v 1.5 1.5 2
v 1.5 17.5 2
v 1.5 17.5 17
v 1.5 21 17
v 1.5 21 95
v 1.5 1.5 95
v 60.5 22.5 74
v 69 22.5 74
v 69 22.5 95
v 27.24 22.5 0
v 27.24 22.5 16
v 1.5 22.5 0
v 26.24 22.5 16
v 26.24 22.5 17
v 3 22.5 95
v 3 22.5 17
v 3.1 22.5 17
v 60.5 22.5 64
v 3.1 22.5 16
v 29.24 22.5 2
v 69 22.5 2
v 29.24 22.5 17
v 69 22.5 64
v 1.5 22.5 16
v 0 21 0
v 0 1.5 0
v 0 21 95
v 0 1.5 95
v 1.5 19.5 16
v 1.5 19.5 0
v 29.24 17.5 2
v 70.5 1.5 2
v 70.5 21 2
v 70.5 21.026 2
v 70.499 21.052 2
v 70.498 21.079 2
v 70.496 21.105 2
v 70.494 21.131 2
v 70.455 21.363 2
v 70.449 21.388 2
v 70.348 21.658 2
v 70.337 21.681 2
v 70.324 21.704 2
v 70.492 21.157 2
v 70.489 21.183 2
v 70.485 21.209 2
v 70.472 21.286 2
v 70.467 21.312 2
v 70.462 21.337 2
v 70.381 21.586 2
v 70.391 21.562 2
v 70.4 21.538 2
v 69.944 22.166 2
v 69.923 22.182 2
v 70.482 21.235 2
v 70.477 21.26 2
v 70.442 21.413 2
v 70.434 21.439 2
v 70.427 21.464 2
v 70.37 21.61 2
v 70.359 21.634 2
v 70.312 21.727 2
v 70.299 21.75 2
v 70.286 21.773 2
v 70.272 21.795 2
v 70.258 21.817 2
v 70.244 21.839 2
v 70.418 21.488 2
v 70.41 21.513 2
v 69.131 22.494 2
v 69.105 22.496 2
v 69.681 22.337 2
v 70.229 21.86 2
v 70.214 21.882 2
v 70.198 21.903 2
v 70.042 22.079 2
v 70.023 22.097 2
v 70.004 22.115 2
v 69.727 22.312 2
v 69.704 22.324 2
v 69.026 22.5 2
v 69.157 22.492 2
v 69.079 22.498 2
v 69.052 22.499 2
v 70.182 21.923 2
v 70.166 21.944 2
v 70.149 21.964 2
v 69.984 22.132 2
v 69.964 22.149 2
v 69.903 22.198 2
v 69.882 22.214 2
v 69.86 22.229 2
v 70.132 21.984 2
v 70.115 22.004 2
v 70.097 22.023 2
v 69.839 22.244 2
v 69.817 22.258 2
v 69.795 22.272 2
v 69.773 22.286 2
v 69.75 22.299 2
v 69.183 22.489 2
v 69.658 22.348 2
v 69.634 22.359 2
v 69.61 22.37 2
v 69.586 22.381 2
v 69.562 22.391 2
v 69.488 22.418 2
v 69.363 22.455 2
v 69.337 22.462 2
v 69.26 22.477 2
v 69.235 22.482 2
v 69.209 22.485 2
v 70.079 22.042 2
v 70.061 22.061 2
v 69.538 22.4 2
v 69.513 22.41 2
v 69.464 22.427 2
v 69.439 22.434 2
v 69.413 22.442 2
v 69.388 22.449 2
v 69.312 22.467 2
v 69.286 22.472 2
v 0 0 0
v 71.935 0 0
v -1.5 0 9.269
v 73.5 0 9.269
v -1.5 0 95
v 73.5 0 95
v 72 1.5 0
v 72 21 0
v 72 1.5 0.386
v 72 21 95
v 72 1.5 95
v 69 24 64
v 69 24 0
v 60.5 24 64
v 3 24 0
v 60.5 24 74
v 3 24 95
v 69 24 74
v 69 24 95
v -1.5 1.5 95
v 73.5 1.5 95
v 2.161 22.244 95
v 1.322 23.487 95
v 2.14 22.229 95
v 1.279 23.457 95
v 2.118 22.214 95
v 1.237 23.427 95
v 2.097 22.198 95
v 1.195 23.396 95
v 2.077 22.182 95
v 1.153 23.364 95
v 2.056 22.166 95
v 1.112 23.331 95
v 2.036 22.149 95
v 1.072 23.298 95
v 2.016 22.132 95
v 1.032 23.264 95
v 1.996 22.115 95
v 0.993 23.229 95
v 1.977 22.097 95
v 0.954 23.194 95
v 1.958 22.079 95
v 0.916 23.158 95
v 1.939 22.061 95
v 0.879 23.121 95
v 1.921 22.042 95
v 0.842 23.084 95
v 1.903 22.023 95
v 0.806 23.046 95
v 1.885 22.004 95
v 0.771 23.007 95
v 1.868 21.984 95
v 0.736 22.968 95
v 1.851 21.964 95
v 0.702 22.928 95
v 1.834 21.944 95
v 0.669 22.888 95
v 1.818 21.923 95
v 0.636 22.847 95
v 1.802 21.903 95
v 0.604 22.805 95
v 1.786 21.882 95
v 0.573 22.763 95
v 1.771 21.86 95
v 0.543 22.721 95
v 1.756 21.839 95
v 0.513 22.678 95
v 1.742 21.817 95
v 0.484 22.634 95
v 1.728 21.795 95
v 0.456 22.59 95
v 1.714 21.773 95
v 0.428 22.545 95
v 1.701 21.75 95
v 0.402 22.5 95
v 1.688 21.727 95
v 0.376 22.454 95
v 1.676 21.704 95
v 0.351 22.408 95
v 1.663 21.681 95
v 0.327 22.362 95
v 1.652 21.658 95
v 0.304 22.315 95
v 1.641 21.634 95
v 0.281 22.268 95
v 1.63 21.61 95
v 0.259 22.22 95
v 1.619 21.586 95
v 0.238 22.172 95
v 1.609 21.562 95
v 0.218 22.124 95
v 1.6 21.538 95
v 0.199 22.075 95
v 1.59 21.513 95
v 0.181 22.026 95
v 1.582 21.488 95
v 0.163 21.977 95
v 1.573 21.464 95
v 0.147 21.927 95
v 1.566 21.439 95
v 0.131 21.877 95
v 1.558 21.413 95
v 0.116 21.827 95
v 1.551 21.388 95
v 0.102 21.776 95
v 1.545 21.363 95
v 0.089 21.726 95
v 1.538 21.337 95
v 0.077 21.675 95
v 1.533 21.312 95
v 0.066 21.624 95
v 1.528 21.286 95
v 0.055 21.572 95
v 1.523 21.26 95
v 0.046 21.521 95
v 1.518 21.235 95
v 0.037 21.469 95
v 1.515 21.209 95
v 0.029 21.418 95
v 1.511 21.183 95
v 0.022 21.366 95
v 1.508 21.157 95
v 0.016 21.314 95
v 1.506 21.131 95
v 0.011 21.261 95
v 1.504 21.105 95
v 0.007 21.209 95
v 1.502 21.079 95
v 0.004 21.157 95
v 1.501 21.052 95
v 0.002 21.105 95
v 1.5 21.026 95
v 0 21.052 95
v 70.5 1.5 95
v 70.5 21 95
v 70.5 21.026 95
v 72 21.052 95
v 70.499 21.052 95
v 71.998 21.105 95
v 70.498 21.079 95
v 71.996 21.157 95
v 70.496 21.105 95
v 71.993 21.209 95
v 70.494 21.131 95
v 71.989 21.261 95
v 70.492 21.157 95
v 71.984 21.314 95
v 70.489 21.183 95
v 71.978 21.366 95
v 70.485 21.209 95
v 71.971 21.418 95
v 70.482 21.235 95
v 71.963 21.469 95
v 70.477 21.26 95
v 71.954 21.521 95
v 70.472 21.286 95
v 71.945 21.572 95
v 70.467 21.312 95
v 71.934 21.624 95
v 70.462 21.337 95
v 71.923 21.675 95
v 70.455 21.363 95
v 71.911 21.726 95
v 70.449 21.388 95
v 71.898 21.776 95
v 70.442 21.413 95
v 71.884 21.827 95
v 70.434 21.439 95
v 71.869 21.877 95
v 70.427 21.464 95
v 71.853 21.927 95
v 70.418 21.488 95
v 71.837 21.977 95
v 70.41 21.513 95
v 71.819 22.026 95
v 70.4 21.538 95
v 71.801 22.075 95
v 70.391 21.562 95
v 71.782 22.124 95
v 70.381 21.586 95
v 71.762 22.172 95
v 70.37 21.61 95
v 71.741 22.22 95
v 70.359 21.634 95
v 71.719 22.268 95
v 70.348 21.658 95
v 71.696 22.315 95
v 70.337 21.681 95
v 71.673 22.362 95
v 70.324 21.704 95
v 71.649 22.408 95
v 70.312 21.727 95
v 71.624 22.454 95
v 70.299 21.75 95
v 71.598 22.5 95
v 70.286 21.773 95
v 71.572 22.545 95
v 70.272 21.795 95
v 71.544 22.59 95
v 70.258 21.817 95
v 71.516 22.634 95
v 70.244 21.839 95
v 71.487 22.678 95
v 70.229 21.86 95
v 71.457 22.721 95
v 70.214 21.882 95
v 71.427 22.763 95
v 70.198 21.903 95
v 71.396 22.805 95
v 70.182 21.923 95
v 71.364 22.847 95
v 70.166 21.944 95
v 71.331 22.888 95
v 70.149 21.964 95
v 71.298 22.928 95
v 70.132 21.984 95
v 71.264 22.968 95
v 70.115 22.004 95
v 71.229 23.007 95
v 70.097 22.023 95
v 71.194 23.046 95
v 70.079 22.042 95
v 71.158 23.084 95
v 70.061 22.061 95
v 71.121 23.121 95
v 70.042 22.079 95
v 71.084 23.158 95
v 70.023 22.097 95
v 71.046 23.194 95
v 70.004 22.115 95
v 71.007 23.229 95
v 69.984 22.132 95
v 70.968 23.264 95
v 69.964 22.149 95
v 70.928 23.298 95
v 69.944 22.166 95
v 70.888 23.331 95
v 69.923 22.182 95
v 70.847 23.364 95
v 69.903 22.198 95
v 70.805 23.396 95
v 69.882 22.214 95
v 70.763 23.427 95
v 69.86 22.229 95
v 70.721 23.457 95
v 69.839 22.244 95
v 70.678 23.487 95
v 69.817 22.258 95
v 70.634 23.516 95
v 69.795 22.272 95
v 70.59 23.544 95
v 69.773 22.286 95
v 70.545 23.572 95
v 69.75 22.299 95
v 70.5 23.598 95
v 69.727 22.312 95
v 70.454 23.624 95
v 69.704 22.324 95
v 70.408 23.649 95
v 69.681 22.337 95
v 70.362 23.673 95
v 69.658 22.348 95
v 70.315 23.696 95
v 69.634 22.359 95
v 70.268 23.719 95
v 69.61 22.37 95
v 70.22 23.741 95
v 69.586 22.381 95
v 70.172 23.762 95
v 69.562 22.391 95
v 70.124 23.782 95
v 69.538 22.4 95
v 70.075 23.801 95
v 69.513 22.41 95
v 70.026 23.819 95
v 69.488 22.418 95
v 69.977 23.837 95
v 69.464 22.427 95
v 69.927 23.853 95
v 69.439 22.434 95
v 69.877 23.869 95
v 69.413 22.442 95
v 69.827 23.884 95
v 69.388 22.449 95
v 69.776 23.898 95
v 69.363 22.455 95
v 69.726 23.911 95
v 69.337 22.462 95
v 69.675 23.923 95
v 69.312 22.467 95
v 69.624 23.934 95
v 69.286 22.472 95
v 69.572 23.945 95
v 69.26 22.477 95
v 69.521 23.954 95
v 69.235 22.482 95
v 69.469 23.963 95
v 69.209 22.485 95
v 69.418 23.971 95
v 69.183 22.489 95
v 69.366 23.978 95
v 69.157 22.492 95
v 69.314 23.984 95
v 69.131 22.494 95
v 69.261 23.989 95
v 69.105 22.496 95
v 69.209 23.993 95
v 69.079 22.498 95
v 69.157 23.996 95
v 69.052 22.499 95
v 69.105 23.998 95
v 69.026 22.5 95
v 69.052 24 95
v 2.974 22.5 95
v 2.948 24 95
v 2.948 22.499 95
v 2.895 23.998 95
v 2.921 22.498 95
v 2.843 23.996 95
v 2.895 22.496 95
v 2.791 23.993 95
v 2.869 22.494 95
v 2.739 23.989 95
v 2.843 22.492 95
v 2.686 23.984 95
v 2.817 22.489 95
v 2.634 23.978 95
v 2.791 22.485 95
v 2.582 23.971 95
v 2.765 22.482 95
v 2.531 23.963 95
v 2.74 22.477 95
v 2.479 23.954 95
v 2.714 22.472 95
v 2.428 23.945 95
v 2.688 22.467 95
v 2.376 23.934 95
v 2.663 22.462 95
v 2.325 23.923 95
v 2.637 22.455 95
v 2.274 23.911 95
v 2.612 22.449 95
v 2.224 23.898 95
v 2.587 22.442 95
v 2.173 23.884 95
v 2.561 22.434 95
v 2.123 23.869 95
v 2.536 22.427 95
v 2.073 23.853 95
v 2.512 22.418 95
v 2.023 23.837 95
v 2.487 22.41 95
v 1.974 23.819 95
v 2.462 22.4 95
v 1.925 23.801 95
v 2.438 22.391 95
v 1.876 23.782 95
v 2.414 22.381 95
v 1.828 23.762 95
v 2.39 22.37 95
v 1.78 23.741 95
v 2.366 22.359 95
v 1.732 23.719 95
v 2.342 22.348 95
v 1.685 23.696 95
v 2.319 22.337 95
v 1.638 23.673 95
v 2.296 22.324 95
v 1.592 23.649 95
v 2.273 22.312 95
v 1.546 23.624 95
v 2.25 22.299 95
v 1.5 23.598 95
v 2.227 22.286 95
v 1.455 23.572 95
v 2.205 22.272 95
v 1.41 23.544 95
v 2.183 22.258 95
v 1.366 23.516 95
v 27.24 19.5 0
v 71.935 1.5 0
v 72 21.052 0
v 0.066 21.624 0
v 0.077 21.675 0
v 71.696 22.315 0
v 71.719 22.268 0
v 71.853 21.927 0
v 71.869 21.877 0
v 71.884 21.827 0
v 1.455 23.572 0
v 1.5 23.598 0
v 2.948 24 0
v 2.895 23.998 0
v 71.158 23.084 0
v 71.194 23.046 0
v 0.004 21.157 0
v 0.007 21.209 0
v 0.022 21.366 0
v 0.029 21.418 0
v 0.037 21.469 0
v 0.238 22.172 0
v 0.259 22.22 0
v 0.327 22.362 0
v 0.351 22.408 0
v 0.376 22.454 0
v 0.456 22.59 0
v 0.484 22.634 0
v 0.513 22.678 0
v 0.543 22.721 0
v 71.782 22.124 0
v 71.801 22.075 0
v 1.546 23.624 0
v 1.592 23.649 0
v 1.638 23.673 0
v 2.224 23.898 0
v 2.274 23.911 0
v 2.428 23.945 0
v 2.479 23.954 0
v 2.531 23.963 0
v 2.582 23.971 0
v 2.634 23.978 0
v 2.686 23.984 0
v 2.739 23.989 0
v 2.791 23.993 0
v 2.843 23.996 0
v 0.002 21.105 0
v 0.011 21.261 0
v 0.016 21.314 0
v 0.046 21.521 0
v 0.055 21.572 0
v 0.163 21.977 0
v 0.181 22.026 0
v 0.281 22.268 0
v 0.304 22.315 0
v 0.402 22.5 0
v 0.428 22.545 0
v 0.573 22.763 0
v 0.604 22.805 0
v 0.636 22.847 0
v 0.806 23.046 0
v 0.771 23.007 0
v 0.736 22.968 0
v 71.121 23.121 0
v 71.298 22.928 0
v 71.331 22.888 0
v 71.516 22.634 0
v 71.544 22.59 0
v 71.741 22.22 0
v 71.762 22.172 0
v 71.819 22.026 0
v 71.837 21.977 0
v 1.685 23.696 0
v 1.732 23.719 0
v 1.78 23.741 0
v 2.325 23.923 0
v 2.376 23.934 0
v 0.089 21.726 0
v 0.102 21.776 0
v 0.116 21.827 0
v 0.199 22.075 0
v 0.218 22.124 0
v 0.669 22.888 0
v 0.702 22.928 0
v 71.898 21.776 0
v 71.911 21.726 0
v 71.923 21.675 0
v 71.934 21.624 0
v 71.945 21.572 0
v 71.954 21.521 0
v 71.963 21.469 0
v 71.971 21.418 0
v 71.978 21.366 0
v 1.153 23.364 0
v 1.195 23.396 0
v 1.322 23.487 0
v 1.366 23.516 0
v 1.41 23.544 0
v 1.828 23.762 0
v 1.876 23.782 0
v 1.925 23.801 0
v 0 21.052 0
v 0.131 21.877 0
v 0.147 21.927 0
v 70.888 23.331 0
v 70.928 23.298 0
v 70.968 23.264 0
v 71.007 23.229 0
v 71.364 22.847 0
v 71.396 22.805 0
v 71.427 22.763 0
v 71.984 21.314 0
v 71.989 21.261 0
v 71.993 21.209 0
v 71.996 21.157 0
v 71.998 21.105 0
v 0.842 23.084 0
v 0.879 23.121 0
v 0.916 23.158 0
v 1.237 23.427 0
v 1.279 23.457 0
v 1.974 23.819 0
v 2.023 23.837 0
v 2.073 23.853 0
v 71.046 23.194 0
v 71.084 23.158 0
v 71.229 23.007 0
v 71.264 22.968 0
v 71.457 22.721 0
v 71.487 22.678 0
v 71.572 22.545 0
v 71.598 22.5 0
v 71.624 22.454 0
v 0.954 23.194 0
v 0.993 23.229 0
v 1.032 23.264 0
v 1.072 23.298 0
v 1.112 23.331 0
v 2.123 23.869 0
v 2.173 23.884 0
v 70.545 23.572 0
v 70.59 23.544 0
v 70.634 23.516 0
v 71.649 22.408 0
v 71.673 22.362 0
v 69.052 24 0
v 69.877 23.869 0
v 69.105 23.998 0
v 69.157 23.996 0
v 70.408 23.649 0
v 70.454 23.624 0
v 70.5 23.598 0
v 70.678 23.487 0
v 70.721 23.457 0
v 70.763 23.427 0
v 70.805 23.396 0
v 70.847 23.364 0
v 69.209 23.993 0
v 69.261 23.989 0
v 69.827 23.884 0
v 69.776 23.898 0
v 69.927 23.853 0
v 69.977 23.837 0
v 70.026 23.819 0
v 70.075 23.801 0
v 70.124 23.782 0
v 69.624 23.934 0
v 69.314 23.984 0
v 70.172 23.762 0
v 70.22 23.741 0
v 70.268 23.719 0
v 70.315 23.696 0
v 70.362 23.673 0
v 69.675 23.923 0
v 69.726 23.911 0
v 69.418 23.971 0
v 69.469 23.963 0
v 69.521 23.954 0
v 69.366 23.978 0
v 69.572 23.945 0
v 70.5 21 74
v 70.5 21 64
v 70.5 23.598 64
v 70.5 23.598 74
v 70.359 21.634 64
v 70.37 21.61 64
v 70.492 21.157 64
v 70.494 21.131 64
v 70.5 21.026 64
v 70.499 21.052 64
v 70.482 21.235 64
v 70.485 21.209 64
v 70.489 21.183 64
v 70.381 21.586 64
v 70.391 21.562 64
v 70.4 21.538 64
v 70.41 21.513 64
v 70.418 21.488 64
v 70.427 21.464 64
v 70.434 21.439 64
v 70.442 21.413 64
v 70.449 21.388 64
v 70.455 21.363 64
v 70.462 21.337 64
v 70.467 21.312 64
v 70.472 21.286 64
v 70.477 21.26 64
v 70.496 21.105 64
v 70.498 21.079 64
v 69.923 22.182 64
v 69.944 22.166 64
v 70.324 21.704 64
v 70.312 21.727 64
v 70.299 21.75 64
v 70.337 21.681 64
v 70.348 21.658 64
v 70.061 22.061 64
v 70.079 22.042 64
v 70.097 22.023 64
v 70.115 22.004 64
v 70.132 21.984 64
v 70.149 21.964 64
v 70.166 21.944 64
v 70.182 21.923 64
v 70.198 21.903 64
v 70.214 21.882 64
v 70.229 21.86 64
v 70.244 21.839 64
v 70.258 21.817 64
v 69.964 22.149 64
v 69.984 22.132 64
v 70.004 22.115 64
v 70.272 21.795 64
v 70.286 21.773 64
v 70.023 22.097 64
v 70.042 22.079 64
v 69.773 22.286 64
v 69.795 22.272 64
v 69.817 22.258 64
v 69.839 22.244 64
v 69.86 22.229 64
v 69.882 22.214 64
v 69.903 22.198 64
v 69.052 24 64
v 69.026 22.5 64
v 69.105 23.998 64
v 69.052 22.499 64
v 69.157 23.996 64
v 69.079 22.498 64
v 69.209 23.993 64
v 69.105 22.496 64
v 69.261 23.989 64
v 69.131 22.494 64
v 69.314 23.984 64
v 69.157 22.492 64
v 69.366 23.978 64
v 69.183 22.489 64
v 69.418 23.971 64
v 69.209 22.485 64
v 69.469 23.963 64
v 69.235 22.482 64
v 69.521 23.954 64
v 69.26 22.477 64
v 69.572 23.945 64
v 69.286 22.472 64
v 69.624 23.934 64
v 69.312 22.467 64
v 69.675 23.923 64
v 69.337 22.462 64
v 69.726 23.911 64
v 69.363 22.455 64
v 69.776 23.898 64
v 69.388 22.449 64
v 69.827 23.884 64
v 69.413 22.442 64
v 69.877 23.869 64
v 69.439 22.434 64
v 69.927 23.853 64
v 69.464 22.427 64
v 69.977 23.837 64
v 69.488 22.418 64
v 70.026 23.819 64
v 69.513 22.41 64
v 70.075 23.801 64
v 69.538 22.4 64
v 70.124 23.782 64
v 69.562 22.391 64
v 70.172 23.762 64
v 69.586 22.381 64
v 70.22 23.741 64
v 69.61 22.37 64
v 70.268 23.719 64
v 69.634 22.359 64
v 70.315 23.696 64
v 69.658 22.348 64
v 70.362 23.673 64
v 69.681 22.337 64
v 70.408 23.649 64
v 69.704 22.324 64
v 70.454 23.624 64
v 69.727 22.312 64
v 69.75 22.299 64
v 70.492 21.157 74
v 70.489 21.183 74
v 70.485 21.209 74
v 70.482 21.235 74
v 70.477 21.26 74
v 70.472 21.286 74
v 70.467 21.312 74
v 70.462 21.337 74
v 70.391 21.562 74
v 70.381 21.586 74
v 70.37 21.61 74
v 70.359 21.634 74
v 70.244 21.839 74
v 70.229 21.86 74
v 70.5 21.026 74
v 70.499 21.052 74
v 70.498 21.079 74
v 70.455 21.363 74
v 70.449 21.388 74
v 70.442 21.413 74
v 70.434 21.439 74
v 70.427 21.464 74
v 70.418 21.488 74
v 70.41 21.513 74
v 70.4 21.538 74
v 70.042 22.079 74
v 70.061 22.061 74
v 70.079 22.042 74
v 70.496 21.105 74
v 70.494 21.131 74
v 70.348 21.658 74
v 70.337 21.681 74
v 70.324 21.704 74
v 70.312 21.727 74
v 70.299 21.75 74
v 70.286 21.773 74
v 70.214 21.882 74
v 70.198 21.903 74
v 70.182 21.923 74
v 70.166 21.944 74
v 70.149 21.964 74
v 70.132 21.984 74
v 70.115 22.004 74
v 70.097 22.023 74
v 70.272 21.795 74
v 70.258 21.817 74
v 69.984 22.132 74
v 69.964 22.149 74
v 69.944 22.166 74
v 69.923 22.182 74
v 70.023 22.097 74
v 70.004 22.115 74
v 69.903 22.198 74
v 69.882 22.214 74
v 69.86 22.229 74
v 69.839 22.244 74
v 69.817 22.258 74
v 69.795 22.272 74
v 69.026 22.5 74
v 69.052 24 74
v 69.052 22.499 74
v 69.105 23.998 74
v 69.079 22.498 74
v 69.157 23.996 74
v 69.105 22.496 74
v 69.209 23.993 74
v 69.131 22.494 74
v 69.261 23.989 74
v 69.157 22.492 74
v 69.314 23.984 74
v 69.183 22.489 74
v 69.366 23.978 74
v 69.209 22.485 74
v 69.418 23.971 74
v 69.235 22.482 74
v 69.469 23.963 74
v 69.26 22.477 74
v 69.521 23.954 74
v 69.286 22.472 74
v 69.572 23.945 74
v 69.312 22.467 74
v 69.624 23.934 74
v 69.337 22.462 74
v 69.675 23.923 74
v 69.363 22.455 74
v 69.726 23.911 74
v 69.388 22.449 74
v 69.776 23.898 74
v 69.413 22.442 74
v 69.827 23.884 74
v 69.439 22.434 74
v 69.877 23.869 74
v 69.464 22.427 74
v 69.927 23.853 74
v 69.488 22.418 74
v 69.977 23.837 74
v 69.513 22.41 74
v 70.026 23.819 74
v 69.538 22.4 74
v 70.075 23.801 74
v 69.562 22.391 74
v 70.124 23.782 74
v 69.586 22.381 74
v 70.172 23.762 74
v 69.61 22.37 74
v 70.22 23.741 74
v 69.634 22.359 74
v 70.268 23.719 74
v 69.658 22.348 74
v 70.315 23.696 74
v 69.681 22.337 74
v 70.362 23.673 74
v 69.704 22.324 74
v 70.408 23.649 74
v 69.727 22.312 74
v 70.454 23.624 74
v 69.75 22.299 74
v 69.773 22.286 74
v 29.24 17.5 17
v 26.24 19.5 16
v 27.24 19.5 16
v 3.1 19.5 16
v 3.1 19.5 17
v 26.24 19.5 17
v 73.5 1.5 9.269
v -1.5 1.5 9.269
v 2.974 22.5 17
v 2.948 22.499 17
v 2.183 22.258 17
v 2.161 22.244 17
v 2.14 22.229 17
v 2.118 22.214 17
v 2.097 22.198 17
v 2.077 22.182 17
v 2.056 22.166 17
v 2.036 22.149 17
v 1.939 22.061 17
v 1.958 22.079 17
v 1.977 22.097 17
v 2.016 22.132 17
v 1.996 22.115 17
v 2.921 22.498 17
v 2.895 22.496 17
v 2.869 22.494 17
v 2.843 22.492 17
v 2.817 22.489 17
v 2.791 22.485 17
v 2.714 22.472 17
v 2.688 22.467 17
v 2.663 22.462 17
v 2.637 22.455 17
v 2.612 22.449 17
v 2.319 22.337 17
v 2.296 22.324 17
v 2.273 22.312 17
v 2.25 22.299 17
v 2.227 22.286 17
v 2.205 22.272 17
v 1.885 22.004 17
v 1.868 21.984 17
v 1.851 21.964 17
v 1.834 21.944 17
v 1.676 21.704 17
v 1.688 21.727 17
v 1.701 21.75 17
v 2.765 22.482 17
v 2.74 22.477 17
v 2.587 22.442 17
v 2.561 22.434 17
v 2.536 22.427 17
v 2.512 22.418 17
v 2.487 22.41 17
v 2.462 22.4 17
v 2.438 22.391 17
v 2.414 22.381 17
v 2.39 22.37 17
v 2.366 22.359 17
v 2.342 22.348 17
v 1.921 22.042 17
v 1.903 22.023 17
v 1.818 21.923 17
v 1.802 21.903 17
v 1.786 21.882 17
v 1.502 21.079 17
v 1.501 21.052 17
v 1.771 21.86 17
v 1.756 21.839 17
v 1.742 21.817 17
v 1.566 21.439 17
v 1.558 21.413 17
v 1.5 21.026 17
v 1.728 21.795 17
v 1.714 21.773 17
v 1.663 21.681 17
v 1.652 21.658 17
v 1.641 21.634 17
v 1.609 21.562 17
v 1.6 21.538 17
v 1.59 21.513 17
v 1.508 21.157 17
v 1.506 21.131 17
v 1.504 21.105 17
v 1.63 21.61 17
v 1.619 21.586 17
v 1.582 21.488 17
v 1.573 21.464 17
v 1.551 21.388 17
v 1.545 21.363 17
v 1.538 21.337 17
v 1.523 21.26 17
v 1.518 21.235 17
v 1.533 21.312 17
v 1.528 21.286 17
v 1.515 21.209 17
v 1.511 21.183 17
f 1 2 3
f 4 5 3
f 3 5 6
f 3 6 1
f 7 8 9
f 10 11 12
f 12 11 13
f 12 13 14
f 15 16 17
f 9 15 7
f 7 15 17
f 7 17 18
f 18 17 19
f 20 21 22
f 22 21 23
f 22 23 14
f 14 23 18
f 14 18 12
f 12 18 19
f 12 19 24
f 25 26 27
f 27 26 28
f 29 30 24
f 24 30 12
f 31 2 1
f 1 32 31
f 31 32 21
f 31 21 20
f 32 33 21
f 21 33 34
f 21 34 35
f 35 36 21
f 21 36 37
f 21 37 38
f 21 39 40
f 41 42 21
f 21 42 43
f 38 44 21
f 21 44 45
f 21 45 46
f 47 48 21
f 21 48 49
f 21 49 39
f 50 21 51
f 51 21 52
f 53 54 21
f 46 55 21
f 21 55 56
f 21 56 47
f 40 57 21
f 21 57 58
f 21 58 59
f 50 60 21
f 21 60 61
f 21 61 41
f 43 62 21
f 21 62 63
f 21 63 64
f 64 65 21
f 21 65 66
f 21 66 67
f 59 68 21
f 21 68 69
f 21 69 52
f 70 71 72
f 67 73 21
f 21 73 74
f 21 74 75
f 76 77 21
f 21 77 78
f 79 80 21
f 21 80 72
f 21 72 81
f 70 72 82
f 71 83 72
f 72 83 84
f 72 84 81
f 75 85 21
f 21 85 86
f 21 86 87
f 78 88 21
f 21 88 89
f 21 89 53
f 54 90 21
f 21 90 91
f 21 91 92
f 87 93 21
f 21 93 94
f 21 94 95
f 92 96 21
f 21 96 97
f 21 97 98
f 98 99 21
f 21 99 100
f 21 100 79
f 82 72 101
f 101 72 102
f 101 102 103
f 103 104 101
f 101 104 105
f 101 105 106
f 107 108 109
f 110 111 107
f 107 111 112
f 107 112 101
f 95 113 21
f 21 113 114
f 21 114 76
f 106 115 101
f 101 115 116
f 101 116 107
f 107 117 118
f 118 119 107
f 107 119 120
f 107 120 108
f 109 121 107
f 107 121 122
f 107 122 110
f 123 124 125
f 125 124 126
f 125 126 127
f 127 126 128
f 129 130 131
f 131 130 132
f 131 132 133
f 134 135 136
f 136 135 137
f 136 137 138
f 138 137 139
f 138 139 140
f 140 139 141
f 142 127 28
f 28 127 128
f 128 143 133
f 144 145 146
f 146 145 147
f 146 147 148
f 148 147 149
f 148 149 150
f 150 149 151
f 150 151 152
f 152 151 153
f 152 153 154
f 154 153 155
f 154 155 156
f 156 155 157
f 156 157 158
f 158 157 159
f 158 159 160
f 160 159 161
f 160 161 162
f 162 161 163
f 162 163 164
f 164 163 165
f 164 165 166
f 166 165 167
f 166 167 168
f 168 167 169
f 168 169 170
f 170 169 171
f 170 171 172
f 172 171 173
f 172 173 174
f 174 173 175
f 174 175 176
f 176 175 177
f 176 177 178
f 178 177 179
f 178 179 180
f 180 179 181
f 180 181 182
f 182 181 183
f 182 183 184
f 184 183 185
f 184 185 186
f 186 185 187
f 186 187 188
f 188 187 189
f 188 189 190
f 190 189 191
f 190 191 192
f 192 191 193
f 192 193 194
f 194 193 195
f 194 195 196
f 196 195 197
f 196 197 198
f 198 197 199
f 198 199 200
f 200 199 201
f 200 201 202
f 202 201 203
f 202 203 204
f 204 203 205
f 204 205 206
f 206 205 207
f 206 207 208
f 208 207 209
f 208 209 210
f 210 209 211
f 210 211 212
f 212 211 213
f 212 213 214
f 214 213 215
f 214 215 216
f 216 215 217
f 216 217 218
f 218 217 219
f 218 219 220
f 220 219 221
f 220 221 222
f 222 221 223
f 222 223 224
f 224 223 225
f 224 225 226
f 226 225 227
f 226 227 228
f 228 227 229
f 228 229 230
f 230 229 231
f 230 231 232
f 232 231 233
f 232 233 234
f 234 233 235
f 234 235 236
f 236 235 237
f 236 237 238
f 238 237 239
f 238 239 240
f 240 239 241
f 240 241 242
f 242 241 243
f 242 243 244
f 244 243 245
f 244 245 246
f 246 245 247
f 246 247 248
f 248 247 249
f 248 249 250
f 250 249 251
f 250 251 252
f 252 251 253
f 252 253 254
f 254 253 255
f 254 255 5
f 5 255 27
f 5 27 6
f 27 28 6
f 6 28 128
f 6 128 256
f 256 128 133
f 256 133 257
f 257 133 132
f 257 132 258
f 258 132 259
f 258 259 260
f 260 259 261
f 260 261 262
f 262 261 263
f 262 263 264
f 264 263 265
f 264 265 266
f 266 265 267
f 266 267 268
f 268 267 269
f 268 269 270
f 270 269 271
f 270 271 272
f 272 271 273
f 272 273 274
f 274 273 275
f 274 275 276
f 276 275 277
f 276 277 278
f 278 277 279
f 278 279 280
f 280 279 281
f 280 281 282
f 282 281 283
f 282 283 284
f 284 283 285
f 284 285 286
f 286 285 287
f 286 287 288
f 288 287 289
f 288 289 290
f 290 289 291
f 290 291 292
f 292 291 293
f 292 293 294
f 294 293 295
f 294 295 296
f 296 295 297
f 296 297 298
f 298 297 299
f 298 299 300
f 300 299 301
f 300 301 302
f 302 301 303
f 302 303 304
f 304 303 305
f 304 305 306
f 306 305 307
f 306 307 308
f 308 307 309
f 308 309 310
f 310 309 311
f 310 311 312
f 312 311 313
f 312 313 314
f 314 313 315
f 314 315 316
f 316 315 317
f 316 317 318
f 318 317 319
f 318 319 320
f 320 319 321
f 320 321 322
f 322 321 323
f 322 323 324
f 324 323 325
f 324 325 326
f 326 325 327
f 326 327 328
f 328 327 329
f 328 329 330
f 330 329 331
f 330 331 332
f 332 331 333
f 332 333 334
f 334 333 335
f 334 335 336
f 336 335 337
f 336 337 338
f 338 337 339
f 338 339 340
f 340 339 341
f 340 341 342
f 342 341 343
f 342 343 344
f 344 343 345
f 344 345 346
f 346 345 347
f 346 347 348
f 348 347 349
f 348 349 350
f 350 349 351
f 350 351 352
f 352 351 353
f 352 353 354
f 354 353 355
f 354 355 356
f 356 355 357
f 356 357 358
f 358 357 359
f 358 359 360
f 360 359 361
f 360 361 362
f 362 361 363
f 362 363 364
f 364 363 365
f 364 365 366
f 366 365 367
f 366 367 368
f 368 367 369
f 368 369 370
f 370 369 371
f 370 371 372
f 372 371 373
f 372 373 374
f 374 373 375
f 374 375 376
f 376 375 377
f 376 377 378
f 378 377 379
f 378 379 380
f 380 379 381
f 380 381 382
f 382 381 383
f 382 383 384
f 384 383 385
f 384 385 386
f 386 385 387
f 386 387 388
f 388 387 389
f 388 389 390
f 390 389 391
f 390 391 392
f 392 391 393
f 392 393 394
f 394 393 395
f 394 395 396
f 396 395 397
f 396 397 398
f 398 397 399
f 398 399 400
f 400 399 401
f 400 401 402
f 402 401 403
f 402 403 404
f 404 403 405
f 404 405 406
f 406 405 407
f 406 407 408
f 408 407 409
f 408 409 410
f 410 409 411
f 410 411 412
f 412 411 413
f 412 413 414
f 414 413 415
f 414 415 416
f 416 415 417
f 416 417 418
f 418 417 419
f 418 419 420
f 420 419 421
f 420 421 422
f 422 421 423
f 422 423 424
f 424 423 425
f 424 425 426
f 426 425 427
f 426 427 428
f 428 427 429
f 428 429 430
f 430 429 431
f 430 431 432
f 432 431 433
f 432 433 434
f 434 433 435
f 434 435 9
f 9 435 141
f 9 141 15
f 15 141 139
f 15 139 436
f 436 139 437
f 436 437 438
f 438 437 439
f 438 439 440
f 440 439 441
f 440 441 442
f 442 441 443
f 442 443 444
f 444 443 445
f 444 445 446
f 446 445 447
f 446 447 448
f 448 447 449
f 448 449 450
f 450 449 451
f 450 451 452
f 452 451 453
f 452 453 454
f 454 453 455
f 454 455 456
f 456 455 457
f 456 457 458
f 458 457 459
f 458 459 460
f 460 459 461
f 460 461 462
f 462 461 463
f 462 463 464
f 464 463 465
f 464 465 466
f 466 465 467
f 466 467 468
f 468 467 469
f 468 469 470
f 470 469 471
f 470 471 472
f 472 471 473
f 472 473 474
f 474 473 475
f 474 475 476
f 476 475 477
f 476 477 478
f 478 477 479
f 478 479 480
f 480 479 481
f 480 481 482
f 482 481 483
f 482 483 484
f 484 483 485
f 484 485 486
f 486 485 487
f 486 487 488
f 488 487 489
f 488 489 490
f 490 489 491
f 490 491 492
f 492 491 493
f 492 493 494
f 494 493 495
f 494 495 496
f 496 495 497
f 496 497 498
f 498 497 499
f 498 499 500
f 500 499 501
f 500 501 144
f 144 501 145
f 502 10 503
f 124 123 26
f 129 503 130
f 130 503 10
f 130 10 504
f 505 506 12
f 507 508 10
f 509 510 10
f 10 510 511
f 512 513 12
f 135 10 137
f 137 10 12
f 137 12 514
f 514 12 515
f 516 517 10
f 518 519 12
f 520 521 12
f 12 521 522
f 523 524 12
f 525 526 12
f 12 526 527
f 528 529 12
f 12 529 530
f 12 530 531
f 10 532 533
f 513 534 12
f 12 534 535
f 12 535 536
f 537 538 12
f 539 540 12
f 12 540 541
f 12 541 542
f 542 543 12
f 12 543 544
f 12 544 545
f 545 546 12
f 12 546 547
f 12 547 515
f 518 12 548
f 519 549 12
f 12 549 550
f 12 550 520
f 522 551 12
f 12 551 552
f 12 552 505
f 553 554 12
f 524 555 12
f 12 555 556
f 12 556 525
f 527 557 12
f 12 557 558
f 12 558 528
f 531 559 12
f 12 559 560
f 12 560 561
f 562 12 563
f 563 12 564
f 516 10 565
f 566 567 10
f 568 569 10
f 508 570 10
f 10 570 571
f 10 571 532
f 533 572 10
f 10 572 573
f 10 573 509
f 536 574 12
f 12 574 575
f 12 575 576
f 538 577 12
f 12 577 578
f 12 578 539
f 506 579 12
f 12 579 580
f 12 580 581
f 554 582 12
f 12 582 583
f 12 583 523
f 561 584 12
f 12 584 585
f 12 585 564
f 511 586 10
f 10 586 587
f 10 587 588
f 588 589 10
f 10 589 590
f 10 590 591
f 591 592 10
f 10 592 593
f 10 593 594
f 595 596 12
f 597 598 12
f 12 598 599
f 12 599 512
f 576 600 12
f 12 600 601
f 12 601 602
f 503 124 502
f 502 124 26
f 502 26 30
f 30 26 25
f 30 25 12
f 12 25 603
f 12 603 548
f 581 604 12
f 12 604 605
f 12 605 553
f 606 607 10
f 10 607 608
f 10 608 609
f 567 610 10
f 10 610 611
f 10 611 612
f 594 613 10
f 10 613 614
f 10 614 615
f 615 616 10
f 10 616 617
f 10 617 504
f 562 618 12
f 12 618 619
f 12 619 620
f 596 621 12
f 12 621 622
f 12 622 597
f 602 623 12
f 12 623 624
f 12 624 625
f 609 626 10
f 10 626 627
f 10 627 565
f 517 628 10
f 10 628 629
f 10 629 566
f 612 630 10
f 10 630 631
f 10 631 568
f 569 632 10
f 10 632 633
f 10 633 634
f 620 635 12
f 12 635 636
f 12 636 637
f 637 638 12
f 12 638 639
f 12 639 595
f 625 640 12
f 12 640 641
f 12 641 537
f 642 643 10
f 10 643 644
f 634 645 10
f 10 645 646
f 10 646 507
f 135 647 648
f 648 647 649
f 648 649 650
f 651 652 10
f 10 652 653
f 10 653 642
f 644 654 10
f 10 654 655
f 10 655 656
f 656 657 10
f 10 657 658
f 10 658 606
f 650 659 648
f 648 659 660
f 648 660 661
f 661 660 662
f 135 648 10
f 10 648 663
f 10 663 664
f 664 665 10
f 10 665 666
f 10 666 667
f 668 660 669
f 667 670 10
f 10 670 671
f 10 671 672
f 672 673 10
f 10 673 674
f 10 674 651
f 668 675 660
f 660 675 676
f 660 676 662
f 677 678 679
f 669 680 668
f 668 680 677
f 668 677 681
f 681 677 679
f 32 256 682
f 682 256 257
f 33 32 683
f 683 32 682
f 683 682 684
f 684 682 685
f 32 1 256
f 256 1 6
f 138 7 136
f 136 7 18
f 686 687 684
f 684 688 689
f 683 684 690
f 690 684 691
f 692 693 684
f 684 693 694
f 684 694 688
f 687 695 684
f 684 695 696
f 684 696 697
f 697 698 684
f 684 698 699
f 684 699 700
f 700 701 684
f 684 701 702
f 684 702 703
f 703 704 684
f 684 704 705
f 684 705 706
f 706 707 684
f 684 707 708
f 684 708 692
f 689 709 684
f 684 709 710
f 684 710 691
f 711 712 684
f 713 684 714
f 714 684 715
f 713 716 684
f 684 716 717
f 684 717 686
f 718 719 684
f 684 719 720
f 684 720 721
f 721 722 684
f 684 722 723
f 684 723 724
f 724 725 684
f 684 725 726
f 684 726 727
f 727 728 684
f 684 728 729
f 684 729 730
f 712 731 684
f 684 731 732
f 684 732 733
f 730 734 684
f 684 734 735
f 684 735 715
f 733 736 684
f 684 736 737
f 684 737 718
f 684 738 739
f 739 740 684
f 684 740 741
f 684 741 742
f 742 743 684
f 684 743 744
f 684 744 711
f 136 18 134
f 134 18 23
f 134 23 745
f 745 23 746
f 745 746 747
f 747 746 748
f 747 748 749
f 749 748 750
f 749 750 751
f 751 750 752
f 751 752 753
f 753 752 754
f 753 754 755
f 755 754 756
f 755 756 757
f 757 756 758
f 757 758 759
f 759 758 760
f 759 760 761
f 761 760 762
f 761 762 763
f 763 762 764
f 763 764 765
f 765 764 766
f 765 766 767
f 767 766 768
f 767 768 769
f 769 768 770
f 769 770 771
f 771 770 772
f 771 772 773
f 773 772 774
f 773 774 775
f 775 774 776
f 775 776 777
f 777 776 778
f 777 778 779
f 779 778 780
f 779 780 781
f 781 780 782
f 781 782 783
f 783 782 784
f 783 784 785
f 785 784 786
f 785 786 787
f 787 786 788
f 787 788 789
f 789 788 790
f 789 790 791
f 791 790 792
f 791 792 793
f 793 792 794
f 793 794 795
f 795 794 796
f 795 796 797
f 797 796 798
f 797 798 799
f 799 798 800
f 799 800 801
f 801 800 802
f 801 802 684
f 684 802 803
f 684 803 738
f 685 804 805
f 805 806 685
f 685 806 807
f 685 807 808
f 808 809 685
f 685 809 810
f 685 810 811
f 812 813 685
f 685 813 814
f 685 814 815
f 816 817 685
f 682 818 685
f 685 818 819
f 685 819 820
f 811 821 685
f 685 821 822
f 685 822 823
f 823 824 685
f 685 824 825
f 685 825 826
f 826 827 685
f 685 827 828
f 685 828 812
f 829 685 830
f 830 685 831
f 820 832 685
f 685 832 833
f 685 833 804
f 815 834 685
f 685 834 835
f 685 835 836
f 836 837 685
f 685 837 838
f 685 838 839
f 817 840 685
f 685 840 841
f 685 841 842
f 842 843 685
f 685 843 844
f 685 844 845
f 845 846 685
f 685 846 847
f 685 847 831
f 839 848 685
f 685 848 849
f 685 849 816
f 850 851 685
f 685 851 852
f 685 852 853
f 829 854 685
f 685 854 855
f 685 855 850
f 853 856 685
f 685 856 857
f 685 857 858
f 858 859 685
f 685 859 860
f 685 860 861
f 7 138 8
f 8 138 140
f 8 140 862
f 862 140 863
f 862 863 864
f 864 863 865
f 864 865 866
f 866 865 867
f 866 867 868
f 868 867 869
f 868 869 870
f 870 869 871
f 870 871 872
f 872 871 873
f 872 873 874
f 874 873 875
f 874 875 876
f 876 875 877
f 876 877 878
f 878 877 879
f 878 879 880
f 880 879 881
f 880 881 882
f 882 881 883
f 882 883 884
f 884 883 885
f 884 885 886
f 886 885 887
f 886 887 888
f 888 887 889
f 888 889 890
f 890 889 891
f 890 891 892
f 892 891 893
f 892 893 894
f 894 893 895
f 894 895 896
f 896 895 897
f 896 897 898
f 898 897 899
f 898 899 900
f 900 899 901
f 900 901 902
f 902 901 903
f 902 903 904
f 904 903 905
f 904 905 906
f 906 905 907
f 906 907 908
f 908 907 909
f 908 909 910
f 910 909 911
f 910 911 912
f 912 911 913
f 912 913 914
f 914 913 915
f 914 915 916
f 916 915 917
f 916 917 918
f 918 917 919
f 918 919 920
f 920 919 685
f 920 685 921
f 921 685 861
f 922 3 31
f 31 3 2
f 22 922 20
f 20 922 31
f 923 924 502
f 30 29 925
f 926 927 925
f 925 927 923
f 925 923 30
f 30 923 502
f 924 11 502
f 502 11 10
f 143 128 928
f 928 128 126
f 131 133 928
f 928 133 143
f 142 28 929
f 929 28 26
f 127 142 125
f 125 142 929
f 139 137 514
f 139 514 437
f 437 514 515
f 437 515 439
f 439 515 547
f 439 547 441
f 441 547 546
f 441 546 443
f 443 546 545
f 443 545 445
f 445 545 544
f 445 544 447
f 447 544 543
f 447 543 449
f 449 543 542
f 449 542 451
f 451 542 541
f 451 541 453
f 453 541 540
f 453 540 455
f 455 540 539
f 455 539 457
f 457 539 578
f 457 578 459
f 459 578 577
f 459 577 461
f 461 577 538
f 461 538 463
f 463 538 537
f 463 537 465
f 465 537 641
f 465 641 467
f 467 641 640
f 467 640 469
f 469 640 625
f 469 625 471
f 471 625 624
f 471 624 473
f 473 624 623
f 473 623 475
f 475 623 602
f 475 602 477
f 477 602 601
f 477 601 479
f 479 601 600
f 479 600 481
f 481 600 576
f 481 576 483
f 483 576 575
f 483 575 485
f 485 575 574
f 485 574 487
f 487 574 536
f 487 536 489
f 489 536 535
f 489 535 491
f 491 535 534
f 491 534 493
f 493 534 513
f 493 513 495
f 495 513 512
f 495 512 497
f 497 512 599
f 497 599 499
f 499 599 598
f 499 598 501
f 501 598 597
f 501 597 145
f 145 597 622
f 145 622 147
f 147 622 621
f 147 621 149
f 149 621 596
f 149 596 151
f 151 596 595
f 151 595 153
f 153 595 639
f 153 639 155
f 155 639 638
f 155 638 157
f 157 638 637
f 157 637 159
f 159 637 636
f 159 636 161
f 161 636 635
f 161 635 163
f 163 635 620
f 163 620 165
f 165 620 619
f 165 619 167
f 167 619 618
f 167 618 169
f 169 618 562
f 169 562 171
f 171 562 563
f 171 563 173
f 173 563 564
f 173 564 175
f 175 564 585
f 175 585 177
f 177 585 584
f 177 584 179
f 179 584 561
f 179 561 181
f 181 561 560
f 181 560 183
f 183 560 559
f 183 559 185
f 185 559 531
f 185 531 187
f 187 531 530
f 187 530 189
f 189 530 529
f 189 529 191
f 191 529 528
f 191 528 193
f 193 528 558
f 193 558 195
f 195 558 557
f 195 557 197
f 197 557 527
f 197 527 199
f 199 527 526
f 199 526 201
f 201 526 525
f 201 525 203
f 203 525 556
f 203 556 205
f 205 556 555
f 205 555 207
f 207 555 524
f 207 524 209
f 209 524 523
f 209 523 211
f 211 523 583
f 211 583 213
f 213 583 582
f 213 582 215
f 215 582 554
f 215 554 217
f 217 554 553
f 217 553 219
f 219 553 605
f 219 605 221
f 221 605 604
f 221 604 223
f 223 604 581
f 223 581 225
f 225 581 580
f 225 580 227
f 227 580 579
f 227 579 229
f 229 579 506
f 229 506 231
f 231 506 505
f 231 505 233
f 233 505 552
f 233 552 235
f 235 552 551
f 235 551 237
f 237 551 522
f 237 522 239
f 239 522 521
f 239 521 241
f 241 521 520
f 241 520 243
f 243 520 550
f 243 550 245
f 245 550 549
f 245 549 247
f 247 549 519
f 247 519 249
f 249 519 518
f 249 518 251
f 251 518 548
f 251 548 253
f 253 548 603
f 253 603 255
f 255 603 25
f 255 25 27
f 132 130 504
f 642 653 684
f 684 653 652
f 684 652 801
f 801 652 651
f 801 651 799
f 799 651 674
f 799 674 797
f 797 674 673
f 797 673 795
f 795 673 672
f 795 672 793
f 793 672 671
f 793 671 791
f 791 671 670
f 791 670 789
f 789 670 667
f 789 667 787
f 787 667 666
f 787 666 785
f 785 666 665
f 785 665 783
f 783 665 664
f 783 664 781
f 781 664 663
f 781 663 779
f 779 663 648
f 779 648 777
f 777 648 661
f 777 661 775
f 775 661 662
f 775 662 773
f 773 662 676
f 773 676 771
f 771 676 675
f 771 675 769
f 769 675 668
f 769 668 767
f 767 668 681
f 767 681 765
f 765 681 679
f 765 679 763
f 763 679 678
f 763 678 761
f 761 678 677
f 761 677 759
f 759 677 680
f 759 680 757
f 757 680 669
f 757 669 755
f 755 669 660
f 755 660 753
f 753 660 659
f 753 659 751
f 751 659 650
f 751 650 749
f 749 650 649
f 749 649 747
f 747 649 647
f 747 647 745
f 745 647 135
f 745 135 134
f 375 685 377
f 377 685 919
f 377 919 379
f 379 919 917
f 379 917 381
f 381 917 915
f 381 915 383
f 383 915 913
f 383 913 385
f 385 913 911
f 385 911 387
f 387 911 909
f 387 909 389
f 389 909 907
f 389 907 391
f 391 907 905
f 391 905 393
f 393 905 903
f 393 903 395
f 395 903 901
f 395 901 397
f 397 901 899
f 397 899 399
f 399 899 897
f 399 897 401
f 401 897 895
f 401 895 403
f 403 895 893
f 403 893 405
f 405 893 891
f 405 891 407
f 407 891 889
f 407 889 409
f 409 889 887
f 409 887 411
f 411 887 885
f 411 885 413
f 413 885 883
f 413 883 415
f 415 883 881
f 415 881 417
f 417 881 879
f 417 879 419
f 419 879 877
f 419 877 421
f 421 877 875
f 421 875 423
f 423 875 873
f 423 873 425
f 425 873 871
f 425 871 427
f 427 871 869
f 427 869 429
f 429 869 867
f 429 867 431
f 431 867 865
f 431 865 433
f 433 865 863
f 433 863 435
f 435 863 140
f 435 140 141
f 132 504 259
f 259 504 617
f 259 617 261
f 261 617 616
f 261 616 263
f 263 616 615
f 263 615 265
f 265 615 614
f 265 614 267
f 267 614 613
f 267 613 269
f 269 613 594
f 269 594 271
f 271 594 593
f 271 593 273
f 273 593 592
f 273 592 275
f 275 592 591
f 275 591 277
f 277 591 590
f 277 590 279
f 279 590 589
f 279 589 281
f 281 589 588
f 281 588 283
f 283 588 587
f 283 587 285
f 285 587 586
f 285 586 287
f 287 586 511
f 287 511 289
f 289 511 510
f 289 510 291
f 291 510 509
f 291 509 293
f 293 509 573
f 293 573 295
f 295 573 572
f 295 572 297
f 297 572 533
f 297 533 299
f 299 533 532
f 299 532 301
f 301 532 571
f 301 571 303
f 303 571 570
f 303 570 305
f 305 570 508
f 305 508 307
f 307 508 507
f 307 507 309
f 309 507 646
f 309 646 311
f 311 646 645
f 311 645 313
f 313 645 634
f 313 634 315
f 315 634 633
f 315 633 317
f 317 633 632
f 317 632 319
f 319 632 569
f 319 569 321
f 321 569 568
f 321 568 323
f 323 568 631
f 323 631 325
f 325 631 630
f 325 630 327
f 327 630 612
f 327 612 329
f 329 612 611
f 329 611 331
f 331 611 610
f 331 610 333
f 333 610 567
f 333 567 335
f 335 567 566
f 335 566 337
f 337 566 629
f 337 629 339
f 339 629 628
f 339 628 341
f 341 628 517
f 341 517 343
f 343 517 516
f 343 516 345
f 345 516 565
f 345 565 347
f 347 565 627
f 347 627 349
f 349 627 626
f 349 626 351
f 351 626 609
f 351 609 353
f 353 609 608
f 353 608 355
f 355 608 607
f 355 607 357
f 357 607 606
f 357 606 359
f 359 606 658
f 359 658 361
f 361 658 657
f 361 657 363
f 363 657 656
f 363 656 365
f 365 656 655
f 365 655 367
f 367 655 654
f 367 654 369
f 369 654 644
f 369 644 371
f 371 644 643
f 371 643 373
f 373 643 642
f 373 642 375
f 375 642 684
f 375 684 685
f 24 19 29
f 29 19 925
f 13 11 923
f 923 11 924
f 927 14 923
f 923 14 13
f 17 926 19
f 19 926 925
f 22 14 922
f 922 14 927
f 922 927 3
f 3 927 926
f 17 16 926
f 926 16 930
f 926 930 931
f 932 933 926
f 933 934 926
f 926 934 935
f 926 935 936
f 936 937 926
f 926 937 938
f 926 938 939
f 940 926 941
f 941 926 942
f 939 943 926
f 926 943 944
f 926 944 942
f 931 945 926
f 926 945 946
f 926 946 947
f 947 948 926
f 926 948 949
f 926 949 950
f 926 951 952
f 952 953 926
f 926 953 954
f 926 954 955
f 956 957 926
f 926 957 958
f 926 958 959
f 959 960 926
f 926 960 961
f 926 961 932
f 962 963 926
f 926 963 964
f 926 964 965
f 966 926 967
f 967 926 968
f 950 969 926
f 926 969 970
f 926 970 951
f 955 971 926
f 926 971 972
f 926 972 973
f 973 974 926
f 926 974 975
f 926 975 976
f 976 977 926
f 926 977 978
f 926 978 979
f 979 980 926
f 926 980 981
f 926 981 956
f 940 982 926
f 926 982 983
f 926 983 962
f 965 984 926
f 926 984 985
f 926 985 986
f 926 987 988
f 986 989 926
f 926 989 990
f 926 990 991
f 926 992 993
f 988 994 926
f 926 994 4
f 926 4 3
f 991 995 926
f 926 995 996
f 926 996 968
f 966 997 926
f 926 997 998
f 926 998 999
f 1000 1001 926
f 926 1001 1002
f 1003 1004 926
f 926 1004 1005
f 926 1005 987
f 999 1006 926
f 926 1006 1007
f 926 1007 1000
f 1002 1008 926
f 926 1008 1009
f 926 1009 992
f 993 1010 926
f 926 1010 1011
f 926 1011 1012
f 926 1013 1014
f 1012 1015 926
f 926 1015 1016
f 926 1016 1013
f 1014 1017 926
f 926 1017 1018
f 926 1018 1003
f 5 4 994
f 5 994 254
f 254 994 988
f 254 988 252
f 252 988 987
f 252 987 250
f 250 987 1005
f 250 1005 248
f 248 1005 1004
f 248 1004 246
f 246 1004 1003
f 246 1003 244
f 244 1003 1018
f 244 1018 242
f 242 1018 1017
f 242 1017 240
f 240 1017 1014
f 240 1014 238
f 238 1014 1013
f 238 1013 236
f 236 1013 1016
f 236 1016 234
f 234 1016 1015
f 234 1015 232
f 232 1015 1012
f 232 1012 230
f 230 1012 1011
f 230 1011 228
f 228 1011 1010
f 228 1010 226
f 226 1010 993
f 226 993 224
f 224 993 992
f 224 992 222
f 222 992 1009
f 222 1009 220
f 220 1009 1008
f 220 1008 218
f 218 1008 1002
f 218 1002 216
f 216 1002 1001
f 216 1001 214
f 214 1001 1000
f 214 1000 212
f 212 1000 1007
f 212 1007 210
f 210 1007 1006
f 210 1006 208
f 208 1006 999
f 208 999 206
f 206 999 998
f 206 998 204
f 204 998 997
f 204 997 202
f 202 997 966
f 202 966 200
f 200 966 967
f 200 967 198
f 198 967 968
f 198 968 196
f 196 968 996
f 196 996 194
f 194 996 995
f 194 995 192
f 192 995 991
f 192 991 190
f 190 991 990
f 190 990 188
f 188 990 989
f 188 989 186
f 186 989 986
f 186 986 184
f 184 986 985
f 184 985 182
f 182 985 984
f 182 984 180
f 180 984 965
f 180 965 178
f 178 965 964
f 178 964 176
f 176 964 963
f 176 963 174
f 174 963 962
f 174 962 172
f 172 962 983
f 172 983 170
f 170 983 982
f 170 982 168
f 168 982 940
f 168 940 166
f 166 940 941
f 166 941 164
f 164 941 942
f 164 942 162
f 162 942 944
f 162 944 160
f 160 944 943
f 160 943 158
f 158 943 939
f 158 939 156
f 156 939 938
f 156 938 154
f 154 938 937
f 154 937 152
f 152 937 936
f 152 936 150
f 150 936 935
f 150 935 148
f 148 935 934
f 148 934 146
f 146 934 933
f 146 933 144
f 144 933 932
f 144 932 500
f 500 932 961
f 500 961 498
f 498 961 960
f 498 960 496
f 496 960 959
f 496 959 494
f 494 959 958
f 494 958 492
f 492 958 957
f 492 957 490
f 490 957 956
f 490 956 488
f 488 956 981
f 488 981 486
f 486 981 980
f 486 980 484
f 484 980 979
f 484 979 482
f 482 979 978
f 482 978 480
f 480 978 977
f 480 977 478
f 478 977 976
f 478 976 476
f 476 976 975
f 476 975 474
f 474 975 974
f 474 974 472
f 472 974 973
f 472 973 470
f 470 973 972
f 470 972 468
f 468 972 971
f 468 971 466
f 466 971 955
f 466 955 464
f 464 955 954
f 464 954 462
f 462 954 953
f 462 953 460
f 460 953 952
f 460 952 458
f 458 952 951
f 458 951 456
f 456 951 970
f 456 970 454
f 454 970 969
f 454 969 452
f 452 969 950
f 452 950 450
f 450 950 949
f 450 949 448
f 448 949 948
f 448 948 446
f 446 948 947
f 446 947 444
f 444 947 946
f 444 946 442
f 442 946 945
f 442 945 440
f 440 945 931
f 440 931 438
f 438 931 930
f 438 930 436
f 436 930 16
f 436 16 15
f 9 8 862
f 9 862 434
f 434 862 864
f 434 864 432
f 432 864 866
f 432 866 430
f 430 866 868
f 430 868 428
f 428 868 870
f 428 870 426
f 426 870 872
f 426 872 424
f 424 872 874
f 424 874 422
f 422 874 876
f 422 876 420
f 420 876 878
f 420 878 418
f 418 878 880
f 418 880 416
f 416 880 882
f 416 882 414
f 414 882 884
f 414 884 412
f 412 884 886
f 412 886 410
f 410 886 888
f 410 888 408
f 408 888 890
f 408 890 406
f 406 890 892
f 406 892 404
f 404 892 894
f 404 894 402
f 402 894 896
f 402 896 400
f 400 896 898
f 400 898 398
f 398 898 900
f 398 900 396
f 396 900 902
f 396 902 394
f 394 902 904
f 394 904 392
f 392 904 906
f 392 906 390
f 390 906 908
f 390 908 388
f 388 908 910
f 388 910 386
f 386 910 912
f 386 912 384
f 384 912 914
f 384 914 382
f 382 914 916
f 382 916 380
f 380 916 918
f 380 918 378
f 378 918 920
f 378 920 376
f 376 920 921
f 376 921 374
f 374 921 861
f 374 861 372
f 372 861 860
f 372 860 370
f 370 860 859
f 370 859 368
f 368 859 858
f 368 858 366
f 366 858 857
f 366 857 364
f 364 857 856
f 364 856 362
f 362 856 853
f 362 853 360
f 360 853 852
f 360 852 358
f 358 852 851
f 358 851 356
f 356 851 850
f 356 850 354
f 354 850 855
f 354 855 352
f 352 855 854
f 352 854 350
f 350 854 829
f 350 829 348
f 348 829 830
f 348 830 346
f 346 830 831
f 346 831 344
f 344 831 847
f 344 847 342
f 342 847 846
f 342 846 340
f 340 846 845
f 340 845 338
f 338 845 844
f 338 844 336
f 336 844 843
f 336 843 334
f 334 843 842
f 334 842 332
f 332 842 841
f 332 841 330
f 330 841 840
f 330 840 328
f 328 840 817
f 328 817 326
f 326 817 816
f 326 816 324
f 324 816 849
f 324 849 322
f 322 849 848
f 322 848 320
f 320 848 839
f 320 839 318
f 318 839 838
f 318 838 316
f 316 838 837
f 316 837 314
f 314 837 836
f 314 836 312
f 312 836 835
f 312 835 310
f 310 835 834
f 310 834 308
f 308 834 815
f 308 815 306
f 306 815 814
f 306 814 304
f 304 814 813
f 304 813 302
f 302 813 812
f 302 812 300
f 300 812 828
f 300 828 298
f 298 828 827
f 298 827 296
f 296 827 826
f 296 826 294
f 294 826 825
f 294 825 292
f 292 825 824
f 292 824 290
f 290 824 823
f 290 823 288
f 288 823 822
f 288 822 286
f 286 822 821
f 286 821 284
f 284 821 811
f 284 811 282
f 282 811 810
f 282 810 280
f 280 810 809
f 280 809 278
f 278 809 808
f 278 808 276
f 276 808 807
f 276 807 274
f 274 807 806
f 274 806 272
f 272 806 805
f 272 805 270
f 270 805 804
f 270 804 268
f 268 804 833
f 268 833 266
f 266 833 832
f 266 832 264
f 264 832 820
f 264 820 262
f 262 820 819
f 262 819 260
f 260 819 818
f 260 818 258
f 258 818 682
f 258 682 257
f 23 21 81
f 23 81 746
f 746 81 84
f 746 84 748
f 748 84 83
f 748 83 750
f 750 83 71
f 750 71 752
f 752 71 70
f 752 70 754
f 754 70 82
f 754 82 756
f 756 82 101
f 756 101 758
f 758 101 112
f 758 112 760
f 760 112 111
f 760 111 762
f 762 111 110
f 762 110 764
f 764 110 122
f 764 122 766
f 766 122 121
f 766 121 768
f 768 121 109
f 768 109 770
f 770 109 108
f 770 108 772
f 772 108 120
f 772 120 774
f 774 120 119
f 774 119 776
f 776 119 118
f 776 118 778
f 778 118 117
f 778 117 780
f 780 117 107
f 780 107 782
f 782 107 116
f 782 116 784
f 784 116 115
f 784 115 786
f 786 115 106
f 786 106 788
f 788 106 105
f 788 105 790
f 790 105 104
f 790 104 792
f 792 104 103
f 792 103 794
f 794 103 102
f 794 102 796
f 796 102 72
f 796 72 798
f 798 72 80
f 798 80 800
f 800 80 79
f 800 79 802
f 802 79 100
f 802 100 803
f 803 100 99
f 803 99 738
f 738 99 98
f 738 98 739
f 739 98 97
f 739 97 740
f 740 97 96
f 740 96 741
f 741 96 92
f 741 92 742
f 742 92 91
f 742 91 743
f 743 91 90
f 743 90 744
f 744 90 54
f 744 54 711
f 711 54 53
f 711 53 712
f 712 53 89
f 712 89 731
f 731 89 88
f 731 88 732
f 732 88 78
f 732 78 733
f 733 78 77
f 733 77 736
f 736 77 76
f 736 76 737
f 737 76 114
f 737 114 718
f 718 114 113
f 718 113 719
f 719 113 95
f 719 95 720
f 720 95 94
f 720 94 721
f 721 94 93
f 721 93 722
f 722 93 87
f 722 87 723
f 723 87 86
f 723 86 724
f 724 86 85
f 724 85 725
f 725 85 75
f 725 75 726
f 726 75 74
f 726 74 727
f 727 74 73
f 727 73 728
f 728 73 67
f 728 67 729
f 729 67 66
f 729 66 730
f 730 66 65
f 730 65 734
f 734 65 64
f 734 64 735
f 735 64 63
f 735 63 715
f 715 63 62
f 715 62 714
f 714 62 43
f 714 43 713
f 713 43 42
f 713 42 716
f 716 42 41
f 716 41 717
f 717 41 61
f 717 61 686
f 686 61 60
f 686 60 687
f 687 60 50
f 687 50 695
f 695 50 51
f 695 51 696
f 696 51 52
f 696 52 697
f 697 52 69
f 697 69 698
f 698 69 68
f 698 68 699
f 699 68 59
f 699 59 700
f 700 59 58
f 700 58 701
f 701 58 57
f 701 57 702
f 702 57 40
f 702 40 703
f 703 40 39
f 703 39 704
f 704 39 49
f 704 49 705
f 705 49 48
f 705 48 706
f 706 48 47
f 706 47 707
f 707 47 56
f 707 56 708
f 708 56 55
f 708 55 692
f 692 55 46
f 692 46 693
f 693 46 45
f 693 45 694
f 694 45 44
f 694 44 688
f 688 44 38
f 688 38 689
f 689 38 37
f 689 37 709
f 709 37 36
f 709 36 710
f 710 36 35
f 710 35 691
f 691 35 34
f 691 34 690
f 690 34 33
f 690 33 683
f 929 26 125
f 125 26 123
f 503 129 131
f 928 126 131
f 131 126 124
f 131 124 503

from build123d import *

# Parameters (mm, degrees)
SKETCH1_W           = 72
SKETCH1_H           = 24
BOSS_EXTRUDE1_DEPTH = 95
SKETCH2_W           = 69
SKETCH2_H           = 21
CUT_EXTRUDE1_DEPTH  = 93
SKETCH3_W           = 10
SKETCH3_H           = 10
CUT_EXTRUDE2_DEPTH  = 2
SKETCH4_W           = 27.74
SKETCH4_H           = 5
BOSS_EXTRUDE2_DEPTH = 14
SKETCH5_W           = 25.74
SKETCH5_H           = 3
CUT_EXTRUDE3_DEPTH  = 16
SKETCH6_W           = 1.5
SKETCH6_H           = 1.5
BOSS_EXTRUDE4_DEPTH = 95
FILLET1_R           = 3
BOSS_EXTRUDE5_DEPTH = 1
FILLET2_R           = 1.5
CUT_EXTRUDE4_DEPTH  = 1.5


with BuildPart() as part:
    # Sketch1 → Boss-Extrude1 (new body)
    with BuildSketch(Plane.XY):
        with Locations((36, 12)):
            Rectangle(SKETCH1_W, SKETCH1_H)
    extrude(amount=BOSS_EXTRUDE1_DEPTH)

    # Sketch2 → Cut-Extrude1 (cut)
    with BuildSketch(Plane.XY.offset(95)):
        with Locations((36, 12)):
            Rectangle(SKETCH2_W, SKETCH2_H)
    extrude(amount=-CUT_EXTRUDE1_DEPTH, mode=Mode.SUBTRACT)

    # Sketch3 → Cut-Extrude2 (cut)
    with BuildSketch(Plane(origin=(0, 24, 0), x_dir=(1, 0, 0), z_dir=(0, 1, 0))):
        with Locations((65.5, -69)):
            Rectangle(SKETCH3_W, SKETCH3_H)
    extrude(amount=-CUT_EXTRUDE2_DEPTH, mode=Mode.SUBTRACT)

    # Sketch4 → Boss-Extrude2 (add)
    with BuildSketch(Plane.XY.offset(2)):
        with Locations((15.37, 20)):
            Rectangle(SKETCH4_W, SKETCH4_H)
    extrude(amount=BOSS_EXTRUDE2_DEPTH)

    # Sketch5 → Cut-Extrude3 (cut)
    with BuildSketch(Plane(origin=(0, 0, 0), x_dir=(-1, 0, 0), z_dir=(0, 0, -1))):
        with Locations((-14.37, 21)):
            Rectangle(SKETCH5_W, SKETCH5_H)
    extrude(amount=-CUT_EXTRUDE3_DEPTH, mode=Mode.SUBTRACT)

    # Sketch6 → Boss-Extrude4 (add)
    with BuildSketch(Plane(origin=(0, 0, 0), x_dir=(-1, 0, 0), z_dir=(0, 0, -1))):
        with Locations((-72.75, 0.75)):
            Rectangle(SKETCH6_W, SKETCH6_H)
        with Locations((0.75, 0.75)):
            Rectangle(SKETCH6_W, SKETCH6_H)
    extrude(amount=-BOSS_EXTRUDE4_DEPTH)

    # Fillet1
    # the kernel refuses this fillet: 3 mm, written as the material it takes off along each edge
    with BuildSketch(Plane(origin=(0, 24, -7.5), x_dir=(1, 0, 0), z_dir=(0, 0, 1)), Plane(origin=(72, 24, -7.5), x_dir=(0, -1, 0), z_dir=(0, 0, 1))) as fillet1_piece_1:
        with BuildLine():
            CenterArc((FILLET1_R, -FILLET1_R), FILLET1_R, 90, 90)
            Line((0, -FILLET1_R), (0, 0))
            Line((0, 0), (FILLET1_R, 0))
        make_face()
    extrude(amount=110, mode=Mode.SUBTRACT)

    # Sketch7 → Boss-Extrude5 (add)
    with BuildSketch(Plane.XY.offset(16)):
        Polygon((29.24, 22.5), (26.24, 22.5), (26.24, 19.5), (3.1, 19.5), (3.1, 22.5), (1.5, 22.5), (1.5, 17.5), (3.1, 17.5), (26.24, 17.5), (29.24, 17.5), align=None)
    extrude(amount=BOSS_EXTRUDE5_DEPTH)

    # Fillet2
    fillet2_edges = [part.edges().sort_by_distance(p)[0] for p in [
        (1.5, 22.5, 56),
        (70.5, 22.5, 33),
        (70.5, 22.5, 84.5),
    ]]
    fillet(fillet2_edges, radius=FILLET2_R)

    # Sketch8 → Cut-Extrude4 (cut)
    with BuildSketch(Plane(origin=(0, 0, 0), x_dir=(-1, 0, 0), z_dir=(0, -1, 0))):
        Polygon((0, 0), (1.5, -9.268975532), (1.5, 0), align=None)
        Polygon((-73.5, -9.268975532), (-71.934797197, 0), (-73.5, 0), align=None)
    extrude(amount=-CUT_EXTRUDE4_DEPTH, mode=Mode.SUBTRACT)


solid = part.part
